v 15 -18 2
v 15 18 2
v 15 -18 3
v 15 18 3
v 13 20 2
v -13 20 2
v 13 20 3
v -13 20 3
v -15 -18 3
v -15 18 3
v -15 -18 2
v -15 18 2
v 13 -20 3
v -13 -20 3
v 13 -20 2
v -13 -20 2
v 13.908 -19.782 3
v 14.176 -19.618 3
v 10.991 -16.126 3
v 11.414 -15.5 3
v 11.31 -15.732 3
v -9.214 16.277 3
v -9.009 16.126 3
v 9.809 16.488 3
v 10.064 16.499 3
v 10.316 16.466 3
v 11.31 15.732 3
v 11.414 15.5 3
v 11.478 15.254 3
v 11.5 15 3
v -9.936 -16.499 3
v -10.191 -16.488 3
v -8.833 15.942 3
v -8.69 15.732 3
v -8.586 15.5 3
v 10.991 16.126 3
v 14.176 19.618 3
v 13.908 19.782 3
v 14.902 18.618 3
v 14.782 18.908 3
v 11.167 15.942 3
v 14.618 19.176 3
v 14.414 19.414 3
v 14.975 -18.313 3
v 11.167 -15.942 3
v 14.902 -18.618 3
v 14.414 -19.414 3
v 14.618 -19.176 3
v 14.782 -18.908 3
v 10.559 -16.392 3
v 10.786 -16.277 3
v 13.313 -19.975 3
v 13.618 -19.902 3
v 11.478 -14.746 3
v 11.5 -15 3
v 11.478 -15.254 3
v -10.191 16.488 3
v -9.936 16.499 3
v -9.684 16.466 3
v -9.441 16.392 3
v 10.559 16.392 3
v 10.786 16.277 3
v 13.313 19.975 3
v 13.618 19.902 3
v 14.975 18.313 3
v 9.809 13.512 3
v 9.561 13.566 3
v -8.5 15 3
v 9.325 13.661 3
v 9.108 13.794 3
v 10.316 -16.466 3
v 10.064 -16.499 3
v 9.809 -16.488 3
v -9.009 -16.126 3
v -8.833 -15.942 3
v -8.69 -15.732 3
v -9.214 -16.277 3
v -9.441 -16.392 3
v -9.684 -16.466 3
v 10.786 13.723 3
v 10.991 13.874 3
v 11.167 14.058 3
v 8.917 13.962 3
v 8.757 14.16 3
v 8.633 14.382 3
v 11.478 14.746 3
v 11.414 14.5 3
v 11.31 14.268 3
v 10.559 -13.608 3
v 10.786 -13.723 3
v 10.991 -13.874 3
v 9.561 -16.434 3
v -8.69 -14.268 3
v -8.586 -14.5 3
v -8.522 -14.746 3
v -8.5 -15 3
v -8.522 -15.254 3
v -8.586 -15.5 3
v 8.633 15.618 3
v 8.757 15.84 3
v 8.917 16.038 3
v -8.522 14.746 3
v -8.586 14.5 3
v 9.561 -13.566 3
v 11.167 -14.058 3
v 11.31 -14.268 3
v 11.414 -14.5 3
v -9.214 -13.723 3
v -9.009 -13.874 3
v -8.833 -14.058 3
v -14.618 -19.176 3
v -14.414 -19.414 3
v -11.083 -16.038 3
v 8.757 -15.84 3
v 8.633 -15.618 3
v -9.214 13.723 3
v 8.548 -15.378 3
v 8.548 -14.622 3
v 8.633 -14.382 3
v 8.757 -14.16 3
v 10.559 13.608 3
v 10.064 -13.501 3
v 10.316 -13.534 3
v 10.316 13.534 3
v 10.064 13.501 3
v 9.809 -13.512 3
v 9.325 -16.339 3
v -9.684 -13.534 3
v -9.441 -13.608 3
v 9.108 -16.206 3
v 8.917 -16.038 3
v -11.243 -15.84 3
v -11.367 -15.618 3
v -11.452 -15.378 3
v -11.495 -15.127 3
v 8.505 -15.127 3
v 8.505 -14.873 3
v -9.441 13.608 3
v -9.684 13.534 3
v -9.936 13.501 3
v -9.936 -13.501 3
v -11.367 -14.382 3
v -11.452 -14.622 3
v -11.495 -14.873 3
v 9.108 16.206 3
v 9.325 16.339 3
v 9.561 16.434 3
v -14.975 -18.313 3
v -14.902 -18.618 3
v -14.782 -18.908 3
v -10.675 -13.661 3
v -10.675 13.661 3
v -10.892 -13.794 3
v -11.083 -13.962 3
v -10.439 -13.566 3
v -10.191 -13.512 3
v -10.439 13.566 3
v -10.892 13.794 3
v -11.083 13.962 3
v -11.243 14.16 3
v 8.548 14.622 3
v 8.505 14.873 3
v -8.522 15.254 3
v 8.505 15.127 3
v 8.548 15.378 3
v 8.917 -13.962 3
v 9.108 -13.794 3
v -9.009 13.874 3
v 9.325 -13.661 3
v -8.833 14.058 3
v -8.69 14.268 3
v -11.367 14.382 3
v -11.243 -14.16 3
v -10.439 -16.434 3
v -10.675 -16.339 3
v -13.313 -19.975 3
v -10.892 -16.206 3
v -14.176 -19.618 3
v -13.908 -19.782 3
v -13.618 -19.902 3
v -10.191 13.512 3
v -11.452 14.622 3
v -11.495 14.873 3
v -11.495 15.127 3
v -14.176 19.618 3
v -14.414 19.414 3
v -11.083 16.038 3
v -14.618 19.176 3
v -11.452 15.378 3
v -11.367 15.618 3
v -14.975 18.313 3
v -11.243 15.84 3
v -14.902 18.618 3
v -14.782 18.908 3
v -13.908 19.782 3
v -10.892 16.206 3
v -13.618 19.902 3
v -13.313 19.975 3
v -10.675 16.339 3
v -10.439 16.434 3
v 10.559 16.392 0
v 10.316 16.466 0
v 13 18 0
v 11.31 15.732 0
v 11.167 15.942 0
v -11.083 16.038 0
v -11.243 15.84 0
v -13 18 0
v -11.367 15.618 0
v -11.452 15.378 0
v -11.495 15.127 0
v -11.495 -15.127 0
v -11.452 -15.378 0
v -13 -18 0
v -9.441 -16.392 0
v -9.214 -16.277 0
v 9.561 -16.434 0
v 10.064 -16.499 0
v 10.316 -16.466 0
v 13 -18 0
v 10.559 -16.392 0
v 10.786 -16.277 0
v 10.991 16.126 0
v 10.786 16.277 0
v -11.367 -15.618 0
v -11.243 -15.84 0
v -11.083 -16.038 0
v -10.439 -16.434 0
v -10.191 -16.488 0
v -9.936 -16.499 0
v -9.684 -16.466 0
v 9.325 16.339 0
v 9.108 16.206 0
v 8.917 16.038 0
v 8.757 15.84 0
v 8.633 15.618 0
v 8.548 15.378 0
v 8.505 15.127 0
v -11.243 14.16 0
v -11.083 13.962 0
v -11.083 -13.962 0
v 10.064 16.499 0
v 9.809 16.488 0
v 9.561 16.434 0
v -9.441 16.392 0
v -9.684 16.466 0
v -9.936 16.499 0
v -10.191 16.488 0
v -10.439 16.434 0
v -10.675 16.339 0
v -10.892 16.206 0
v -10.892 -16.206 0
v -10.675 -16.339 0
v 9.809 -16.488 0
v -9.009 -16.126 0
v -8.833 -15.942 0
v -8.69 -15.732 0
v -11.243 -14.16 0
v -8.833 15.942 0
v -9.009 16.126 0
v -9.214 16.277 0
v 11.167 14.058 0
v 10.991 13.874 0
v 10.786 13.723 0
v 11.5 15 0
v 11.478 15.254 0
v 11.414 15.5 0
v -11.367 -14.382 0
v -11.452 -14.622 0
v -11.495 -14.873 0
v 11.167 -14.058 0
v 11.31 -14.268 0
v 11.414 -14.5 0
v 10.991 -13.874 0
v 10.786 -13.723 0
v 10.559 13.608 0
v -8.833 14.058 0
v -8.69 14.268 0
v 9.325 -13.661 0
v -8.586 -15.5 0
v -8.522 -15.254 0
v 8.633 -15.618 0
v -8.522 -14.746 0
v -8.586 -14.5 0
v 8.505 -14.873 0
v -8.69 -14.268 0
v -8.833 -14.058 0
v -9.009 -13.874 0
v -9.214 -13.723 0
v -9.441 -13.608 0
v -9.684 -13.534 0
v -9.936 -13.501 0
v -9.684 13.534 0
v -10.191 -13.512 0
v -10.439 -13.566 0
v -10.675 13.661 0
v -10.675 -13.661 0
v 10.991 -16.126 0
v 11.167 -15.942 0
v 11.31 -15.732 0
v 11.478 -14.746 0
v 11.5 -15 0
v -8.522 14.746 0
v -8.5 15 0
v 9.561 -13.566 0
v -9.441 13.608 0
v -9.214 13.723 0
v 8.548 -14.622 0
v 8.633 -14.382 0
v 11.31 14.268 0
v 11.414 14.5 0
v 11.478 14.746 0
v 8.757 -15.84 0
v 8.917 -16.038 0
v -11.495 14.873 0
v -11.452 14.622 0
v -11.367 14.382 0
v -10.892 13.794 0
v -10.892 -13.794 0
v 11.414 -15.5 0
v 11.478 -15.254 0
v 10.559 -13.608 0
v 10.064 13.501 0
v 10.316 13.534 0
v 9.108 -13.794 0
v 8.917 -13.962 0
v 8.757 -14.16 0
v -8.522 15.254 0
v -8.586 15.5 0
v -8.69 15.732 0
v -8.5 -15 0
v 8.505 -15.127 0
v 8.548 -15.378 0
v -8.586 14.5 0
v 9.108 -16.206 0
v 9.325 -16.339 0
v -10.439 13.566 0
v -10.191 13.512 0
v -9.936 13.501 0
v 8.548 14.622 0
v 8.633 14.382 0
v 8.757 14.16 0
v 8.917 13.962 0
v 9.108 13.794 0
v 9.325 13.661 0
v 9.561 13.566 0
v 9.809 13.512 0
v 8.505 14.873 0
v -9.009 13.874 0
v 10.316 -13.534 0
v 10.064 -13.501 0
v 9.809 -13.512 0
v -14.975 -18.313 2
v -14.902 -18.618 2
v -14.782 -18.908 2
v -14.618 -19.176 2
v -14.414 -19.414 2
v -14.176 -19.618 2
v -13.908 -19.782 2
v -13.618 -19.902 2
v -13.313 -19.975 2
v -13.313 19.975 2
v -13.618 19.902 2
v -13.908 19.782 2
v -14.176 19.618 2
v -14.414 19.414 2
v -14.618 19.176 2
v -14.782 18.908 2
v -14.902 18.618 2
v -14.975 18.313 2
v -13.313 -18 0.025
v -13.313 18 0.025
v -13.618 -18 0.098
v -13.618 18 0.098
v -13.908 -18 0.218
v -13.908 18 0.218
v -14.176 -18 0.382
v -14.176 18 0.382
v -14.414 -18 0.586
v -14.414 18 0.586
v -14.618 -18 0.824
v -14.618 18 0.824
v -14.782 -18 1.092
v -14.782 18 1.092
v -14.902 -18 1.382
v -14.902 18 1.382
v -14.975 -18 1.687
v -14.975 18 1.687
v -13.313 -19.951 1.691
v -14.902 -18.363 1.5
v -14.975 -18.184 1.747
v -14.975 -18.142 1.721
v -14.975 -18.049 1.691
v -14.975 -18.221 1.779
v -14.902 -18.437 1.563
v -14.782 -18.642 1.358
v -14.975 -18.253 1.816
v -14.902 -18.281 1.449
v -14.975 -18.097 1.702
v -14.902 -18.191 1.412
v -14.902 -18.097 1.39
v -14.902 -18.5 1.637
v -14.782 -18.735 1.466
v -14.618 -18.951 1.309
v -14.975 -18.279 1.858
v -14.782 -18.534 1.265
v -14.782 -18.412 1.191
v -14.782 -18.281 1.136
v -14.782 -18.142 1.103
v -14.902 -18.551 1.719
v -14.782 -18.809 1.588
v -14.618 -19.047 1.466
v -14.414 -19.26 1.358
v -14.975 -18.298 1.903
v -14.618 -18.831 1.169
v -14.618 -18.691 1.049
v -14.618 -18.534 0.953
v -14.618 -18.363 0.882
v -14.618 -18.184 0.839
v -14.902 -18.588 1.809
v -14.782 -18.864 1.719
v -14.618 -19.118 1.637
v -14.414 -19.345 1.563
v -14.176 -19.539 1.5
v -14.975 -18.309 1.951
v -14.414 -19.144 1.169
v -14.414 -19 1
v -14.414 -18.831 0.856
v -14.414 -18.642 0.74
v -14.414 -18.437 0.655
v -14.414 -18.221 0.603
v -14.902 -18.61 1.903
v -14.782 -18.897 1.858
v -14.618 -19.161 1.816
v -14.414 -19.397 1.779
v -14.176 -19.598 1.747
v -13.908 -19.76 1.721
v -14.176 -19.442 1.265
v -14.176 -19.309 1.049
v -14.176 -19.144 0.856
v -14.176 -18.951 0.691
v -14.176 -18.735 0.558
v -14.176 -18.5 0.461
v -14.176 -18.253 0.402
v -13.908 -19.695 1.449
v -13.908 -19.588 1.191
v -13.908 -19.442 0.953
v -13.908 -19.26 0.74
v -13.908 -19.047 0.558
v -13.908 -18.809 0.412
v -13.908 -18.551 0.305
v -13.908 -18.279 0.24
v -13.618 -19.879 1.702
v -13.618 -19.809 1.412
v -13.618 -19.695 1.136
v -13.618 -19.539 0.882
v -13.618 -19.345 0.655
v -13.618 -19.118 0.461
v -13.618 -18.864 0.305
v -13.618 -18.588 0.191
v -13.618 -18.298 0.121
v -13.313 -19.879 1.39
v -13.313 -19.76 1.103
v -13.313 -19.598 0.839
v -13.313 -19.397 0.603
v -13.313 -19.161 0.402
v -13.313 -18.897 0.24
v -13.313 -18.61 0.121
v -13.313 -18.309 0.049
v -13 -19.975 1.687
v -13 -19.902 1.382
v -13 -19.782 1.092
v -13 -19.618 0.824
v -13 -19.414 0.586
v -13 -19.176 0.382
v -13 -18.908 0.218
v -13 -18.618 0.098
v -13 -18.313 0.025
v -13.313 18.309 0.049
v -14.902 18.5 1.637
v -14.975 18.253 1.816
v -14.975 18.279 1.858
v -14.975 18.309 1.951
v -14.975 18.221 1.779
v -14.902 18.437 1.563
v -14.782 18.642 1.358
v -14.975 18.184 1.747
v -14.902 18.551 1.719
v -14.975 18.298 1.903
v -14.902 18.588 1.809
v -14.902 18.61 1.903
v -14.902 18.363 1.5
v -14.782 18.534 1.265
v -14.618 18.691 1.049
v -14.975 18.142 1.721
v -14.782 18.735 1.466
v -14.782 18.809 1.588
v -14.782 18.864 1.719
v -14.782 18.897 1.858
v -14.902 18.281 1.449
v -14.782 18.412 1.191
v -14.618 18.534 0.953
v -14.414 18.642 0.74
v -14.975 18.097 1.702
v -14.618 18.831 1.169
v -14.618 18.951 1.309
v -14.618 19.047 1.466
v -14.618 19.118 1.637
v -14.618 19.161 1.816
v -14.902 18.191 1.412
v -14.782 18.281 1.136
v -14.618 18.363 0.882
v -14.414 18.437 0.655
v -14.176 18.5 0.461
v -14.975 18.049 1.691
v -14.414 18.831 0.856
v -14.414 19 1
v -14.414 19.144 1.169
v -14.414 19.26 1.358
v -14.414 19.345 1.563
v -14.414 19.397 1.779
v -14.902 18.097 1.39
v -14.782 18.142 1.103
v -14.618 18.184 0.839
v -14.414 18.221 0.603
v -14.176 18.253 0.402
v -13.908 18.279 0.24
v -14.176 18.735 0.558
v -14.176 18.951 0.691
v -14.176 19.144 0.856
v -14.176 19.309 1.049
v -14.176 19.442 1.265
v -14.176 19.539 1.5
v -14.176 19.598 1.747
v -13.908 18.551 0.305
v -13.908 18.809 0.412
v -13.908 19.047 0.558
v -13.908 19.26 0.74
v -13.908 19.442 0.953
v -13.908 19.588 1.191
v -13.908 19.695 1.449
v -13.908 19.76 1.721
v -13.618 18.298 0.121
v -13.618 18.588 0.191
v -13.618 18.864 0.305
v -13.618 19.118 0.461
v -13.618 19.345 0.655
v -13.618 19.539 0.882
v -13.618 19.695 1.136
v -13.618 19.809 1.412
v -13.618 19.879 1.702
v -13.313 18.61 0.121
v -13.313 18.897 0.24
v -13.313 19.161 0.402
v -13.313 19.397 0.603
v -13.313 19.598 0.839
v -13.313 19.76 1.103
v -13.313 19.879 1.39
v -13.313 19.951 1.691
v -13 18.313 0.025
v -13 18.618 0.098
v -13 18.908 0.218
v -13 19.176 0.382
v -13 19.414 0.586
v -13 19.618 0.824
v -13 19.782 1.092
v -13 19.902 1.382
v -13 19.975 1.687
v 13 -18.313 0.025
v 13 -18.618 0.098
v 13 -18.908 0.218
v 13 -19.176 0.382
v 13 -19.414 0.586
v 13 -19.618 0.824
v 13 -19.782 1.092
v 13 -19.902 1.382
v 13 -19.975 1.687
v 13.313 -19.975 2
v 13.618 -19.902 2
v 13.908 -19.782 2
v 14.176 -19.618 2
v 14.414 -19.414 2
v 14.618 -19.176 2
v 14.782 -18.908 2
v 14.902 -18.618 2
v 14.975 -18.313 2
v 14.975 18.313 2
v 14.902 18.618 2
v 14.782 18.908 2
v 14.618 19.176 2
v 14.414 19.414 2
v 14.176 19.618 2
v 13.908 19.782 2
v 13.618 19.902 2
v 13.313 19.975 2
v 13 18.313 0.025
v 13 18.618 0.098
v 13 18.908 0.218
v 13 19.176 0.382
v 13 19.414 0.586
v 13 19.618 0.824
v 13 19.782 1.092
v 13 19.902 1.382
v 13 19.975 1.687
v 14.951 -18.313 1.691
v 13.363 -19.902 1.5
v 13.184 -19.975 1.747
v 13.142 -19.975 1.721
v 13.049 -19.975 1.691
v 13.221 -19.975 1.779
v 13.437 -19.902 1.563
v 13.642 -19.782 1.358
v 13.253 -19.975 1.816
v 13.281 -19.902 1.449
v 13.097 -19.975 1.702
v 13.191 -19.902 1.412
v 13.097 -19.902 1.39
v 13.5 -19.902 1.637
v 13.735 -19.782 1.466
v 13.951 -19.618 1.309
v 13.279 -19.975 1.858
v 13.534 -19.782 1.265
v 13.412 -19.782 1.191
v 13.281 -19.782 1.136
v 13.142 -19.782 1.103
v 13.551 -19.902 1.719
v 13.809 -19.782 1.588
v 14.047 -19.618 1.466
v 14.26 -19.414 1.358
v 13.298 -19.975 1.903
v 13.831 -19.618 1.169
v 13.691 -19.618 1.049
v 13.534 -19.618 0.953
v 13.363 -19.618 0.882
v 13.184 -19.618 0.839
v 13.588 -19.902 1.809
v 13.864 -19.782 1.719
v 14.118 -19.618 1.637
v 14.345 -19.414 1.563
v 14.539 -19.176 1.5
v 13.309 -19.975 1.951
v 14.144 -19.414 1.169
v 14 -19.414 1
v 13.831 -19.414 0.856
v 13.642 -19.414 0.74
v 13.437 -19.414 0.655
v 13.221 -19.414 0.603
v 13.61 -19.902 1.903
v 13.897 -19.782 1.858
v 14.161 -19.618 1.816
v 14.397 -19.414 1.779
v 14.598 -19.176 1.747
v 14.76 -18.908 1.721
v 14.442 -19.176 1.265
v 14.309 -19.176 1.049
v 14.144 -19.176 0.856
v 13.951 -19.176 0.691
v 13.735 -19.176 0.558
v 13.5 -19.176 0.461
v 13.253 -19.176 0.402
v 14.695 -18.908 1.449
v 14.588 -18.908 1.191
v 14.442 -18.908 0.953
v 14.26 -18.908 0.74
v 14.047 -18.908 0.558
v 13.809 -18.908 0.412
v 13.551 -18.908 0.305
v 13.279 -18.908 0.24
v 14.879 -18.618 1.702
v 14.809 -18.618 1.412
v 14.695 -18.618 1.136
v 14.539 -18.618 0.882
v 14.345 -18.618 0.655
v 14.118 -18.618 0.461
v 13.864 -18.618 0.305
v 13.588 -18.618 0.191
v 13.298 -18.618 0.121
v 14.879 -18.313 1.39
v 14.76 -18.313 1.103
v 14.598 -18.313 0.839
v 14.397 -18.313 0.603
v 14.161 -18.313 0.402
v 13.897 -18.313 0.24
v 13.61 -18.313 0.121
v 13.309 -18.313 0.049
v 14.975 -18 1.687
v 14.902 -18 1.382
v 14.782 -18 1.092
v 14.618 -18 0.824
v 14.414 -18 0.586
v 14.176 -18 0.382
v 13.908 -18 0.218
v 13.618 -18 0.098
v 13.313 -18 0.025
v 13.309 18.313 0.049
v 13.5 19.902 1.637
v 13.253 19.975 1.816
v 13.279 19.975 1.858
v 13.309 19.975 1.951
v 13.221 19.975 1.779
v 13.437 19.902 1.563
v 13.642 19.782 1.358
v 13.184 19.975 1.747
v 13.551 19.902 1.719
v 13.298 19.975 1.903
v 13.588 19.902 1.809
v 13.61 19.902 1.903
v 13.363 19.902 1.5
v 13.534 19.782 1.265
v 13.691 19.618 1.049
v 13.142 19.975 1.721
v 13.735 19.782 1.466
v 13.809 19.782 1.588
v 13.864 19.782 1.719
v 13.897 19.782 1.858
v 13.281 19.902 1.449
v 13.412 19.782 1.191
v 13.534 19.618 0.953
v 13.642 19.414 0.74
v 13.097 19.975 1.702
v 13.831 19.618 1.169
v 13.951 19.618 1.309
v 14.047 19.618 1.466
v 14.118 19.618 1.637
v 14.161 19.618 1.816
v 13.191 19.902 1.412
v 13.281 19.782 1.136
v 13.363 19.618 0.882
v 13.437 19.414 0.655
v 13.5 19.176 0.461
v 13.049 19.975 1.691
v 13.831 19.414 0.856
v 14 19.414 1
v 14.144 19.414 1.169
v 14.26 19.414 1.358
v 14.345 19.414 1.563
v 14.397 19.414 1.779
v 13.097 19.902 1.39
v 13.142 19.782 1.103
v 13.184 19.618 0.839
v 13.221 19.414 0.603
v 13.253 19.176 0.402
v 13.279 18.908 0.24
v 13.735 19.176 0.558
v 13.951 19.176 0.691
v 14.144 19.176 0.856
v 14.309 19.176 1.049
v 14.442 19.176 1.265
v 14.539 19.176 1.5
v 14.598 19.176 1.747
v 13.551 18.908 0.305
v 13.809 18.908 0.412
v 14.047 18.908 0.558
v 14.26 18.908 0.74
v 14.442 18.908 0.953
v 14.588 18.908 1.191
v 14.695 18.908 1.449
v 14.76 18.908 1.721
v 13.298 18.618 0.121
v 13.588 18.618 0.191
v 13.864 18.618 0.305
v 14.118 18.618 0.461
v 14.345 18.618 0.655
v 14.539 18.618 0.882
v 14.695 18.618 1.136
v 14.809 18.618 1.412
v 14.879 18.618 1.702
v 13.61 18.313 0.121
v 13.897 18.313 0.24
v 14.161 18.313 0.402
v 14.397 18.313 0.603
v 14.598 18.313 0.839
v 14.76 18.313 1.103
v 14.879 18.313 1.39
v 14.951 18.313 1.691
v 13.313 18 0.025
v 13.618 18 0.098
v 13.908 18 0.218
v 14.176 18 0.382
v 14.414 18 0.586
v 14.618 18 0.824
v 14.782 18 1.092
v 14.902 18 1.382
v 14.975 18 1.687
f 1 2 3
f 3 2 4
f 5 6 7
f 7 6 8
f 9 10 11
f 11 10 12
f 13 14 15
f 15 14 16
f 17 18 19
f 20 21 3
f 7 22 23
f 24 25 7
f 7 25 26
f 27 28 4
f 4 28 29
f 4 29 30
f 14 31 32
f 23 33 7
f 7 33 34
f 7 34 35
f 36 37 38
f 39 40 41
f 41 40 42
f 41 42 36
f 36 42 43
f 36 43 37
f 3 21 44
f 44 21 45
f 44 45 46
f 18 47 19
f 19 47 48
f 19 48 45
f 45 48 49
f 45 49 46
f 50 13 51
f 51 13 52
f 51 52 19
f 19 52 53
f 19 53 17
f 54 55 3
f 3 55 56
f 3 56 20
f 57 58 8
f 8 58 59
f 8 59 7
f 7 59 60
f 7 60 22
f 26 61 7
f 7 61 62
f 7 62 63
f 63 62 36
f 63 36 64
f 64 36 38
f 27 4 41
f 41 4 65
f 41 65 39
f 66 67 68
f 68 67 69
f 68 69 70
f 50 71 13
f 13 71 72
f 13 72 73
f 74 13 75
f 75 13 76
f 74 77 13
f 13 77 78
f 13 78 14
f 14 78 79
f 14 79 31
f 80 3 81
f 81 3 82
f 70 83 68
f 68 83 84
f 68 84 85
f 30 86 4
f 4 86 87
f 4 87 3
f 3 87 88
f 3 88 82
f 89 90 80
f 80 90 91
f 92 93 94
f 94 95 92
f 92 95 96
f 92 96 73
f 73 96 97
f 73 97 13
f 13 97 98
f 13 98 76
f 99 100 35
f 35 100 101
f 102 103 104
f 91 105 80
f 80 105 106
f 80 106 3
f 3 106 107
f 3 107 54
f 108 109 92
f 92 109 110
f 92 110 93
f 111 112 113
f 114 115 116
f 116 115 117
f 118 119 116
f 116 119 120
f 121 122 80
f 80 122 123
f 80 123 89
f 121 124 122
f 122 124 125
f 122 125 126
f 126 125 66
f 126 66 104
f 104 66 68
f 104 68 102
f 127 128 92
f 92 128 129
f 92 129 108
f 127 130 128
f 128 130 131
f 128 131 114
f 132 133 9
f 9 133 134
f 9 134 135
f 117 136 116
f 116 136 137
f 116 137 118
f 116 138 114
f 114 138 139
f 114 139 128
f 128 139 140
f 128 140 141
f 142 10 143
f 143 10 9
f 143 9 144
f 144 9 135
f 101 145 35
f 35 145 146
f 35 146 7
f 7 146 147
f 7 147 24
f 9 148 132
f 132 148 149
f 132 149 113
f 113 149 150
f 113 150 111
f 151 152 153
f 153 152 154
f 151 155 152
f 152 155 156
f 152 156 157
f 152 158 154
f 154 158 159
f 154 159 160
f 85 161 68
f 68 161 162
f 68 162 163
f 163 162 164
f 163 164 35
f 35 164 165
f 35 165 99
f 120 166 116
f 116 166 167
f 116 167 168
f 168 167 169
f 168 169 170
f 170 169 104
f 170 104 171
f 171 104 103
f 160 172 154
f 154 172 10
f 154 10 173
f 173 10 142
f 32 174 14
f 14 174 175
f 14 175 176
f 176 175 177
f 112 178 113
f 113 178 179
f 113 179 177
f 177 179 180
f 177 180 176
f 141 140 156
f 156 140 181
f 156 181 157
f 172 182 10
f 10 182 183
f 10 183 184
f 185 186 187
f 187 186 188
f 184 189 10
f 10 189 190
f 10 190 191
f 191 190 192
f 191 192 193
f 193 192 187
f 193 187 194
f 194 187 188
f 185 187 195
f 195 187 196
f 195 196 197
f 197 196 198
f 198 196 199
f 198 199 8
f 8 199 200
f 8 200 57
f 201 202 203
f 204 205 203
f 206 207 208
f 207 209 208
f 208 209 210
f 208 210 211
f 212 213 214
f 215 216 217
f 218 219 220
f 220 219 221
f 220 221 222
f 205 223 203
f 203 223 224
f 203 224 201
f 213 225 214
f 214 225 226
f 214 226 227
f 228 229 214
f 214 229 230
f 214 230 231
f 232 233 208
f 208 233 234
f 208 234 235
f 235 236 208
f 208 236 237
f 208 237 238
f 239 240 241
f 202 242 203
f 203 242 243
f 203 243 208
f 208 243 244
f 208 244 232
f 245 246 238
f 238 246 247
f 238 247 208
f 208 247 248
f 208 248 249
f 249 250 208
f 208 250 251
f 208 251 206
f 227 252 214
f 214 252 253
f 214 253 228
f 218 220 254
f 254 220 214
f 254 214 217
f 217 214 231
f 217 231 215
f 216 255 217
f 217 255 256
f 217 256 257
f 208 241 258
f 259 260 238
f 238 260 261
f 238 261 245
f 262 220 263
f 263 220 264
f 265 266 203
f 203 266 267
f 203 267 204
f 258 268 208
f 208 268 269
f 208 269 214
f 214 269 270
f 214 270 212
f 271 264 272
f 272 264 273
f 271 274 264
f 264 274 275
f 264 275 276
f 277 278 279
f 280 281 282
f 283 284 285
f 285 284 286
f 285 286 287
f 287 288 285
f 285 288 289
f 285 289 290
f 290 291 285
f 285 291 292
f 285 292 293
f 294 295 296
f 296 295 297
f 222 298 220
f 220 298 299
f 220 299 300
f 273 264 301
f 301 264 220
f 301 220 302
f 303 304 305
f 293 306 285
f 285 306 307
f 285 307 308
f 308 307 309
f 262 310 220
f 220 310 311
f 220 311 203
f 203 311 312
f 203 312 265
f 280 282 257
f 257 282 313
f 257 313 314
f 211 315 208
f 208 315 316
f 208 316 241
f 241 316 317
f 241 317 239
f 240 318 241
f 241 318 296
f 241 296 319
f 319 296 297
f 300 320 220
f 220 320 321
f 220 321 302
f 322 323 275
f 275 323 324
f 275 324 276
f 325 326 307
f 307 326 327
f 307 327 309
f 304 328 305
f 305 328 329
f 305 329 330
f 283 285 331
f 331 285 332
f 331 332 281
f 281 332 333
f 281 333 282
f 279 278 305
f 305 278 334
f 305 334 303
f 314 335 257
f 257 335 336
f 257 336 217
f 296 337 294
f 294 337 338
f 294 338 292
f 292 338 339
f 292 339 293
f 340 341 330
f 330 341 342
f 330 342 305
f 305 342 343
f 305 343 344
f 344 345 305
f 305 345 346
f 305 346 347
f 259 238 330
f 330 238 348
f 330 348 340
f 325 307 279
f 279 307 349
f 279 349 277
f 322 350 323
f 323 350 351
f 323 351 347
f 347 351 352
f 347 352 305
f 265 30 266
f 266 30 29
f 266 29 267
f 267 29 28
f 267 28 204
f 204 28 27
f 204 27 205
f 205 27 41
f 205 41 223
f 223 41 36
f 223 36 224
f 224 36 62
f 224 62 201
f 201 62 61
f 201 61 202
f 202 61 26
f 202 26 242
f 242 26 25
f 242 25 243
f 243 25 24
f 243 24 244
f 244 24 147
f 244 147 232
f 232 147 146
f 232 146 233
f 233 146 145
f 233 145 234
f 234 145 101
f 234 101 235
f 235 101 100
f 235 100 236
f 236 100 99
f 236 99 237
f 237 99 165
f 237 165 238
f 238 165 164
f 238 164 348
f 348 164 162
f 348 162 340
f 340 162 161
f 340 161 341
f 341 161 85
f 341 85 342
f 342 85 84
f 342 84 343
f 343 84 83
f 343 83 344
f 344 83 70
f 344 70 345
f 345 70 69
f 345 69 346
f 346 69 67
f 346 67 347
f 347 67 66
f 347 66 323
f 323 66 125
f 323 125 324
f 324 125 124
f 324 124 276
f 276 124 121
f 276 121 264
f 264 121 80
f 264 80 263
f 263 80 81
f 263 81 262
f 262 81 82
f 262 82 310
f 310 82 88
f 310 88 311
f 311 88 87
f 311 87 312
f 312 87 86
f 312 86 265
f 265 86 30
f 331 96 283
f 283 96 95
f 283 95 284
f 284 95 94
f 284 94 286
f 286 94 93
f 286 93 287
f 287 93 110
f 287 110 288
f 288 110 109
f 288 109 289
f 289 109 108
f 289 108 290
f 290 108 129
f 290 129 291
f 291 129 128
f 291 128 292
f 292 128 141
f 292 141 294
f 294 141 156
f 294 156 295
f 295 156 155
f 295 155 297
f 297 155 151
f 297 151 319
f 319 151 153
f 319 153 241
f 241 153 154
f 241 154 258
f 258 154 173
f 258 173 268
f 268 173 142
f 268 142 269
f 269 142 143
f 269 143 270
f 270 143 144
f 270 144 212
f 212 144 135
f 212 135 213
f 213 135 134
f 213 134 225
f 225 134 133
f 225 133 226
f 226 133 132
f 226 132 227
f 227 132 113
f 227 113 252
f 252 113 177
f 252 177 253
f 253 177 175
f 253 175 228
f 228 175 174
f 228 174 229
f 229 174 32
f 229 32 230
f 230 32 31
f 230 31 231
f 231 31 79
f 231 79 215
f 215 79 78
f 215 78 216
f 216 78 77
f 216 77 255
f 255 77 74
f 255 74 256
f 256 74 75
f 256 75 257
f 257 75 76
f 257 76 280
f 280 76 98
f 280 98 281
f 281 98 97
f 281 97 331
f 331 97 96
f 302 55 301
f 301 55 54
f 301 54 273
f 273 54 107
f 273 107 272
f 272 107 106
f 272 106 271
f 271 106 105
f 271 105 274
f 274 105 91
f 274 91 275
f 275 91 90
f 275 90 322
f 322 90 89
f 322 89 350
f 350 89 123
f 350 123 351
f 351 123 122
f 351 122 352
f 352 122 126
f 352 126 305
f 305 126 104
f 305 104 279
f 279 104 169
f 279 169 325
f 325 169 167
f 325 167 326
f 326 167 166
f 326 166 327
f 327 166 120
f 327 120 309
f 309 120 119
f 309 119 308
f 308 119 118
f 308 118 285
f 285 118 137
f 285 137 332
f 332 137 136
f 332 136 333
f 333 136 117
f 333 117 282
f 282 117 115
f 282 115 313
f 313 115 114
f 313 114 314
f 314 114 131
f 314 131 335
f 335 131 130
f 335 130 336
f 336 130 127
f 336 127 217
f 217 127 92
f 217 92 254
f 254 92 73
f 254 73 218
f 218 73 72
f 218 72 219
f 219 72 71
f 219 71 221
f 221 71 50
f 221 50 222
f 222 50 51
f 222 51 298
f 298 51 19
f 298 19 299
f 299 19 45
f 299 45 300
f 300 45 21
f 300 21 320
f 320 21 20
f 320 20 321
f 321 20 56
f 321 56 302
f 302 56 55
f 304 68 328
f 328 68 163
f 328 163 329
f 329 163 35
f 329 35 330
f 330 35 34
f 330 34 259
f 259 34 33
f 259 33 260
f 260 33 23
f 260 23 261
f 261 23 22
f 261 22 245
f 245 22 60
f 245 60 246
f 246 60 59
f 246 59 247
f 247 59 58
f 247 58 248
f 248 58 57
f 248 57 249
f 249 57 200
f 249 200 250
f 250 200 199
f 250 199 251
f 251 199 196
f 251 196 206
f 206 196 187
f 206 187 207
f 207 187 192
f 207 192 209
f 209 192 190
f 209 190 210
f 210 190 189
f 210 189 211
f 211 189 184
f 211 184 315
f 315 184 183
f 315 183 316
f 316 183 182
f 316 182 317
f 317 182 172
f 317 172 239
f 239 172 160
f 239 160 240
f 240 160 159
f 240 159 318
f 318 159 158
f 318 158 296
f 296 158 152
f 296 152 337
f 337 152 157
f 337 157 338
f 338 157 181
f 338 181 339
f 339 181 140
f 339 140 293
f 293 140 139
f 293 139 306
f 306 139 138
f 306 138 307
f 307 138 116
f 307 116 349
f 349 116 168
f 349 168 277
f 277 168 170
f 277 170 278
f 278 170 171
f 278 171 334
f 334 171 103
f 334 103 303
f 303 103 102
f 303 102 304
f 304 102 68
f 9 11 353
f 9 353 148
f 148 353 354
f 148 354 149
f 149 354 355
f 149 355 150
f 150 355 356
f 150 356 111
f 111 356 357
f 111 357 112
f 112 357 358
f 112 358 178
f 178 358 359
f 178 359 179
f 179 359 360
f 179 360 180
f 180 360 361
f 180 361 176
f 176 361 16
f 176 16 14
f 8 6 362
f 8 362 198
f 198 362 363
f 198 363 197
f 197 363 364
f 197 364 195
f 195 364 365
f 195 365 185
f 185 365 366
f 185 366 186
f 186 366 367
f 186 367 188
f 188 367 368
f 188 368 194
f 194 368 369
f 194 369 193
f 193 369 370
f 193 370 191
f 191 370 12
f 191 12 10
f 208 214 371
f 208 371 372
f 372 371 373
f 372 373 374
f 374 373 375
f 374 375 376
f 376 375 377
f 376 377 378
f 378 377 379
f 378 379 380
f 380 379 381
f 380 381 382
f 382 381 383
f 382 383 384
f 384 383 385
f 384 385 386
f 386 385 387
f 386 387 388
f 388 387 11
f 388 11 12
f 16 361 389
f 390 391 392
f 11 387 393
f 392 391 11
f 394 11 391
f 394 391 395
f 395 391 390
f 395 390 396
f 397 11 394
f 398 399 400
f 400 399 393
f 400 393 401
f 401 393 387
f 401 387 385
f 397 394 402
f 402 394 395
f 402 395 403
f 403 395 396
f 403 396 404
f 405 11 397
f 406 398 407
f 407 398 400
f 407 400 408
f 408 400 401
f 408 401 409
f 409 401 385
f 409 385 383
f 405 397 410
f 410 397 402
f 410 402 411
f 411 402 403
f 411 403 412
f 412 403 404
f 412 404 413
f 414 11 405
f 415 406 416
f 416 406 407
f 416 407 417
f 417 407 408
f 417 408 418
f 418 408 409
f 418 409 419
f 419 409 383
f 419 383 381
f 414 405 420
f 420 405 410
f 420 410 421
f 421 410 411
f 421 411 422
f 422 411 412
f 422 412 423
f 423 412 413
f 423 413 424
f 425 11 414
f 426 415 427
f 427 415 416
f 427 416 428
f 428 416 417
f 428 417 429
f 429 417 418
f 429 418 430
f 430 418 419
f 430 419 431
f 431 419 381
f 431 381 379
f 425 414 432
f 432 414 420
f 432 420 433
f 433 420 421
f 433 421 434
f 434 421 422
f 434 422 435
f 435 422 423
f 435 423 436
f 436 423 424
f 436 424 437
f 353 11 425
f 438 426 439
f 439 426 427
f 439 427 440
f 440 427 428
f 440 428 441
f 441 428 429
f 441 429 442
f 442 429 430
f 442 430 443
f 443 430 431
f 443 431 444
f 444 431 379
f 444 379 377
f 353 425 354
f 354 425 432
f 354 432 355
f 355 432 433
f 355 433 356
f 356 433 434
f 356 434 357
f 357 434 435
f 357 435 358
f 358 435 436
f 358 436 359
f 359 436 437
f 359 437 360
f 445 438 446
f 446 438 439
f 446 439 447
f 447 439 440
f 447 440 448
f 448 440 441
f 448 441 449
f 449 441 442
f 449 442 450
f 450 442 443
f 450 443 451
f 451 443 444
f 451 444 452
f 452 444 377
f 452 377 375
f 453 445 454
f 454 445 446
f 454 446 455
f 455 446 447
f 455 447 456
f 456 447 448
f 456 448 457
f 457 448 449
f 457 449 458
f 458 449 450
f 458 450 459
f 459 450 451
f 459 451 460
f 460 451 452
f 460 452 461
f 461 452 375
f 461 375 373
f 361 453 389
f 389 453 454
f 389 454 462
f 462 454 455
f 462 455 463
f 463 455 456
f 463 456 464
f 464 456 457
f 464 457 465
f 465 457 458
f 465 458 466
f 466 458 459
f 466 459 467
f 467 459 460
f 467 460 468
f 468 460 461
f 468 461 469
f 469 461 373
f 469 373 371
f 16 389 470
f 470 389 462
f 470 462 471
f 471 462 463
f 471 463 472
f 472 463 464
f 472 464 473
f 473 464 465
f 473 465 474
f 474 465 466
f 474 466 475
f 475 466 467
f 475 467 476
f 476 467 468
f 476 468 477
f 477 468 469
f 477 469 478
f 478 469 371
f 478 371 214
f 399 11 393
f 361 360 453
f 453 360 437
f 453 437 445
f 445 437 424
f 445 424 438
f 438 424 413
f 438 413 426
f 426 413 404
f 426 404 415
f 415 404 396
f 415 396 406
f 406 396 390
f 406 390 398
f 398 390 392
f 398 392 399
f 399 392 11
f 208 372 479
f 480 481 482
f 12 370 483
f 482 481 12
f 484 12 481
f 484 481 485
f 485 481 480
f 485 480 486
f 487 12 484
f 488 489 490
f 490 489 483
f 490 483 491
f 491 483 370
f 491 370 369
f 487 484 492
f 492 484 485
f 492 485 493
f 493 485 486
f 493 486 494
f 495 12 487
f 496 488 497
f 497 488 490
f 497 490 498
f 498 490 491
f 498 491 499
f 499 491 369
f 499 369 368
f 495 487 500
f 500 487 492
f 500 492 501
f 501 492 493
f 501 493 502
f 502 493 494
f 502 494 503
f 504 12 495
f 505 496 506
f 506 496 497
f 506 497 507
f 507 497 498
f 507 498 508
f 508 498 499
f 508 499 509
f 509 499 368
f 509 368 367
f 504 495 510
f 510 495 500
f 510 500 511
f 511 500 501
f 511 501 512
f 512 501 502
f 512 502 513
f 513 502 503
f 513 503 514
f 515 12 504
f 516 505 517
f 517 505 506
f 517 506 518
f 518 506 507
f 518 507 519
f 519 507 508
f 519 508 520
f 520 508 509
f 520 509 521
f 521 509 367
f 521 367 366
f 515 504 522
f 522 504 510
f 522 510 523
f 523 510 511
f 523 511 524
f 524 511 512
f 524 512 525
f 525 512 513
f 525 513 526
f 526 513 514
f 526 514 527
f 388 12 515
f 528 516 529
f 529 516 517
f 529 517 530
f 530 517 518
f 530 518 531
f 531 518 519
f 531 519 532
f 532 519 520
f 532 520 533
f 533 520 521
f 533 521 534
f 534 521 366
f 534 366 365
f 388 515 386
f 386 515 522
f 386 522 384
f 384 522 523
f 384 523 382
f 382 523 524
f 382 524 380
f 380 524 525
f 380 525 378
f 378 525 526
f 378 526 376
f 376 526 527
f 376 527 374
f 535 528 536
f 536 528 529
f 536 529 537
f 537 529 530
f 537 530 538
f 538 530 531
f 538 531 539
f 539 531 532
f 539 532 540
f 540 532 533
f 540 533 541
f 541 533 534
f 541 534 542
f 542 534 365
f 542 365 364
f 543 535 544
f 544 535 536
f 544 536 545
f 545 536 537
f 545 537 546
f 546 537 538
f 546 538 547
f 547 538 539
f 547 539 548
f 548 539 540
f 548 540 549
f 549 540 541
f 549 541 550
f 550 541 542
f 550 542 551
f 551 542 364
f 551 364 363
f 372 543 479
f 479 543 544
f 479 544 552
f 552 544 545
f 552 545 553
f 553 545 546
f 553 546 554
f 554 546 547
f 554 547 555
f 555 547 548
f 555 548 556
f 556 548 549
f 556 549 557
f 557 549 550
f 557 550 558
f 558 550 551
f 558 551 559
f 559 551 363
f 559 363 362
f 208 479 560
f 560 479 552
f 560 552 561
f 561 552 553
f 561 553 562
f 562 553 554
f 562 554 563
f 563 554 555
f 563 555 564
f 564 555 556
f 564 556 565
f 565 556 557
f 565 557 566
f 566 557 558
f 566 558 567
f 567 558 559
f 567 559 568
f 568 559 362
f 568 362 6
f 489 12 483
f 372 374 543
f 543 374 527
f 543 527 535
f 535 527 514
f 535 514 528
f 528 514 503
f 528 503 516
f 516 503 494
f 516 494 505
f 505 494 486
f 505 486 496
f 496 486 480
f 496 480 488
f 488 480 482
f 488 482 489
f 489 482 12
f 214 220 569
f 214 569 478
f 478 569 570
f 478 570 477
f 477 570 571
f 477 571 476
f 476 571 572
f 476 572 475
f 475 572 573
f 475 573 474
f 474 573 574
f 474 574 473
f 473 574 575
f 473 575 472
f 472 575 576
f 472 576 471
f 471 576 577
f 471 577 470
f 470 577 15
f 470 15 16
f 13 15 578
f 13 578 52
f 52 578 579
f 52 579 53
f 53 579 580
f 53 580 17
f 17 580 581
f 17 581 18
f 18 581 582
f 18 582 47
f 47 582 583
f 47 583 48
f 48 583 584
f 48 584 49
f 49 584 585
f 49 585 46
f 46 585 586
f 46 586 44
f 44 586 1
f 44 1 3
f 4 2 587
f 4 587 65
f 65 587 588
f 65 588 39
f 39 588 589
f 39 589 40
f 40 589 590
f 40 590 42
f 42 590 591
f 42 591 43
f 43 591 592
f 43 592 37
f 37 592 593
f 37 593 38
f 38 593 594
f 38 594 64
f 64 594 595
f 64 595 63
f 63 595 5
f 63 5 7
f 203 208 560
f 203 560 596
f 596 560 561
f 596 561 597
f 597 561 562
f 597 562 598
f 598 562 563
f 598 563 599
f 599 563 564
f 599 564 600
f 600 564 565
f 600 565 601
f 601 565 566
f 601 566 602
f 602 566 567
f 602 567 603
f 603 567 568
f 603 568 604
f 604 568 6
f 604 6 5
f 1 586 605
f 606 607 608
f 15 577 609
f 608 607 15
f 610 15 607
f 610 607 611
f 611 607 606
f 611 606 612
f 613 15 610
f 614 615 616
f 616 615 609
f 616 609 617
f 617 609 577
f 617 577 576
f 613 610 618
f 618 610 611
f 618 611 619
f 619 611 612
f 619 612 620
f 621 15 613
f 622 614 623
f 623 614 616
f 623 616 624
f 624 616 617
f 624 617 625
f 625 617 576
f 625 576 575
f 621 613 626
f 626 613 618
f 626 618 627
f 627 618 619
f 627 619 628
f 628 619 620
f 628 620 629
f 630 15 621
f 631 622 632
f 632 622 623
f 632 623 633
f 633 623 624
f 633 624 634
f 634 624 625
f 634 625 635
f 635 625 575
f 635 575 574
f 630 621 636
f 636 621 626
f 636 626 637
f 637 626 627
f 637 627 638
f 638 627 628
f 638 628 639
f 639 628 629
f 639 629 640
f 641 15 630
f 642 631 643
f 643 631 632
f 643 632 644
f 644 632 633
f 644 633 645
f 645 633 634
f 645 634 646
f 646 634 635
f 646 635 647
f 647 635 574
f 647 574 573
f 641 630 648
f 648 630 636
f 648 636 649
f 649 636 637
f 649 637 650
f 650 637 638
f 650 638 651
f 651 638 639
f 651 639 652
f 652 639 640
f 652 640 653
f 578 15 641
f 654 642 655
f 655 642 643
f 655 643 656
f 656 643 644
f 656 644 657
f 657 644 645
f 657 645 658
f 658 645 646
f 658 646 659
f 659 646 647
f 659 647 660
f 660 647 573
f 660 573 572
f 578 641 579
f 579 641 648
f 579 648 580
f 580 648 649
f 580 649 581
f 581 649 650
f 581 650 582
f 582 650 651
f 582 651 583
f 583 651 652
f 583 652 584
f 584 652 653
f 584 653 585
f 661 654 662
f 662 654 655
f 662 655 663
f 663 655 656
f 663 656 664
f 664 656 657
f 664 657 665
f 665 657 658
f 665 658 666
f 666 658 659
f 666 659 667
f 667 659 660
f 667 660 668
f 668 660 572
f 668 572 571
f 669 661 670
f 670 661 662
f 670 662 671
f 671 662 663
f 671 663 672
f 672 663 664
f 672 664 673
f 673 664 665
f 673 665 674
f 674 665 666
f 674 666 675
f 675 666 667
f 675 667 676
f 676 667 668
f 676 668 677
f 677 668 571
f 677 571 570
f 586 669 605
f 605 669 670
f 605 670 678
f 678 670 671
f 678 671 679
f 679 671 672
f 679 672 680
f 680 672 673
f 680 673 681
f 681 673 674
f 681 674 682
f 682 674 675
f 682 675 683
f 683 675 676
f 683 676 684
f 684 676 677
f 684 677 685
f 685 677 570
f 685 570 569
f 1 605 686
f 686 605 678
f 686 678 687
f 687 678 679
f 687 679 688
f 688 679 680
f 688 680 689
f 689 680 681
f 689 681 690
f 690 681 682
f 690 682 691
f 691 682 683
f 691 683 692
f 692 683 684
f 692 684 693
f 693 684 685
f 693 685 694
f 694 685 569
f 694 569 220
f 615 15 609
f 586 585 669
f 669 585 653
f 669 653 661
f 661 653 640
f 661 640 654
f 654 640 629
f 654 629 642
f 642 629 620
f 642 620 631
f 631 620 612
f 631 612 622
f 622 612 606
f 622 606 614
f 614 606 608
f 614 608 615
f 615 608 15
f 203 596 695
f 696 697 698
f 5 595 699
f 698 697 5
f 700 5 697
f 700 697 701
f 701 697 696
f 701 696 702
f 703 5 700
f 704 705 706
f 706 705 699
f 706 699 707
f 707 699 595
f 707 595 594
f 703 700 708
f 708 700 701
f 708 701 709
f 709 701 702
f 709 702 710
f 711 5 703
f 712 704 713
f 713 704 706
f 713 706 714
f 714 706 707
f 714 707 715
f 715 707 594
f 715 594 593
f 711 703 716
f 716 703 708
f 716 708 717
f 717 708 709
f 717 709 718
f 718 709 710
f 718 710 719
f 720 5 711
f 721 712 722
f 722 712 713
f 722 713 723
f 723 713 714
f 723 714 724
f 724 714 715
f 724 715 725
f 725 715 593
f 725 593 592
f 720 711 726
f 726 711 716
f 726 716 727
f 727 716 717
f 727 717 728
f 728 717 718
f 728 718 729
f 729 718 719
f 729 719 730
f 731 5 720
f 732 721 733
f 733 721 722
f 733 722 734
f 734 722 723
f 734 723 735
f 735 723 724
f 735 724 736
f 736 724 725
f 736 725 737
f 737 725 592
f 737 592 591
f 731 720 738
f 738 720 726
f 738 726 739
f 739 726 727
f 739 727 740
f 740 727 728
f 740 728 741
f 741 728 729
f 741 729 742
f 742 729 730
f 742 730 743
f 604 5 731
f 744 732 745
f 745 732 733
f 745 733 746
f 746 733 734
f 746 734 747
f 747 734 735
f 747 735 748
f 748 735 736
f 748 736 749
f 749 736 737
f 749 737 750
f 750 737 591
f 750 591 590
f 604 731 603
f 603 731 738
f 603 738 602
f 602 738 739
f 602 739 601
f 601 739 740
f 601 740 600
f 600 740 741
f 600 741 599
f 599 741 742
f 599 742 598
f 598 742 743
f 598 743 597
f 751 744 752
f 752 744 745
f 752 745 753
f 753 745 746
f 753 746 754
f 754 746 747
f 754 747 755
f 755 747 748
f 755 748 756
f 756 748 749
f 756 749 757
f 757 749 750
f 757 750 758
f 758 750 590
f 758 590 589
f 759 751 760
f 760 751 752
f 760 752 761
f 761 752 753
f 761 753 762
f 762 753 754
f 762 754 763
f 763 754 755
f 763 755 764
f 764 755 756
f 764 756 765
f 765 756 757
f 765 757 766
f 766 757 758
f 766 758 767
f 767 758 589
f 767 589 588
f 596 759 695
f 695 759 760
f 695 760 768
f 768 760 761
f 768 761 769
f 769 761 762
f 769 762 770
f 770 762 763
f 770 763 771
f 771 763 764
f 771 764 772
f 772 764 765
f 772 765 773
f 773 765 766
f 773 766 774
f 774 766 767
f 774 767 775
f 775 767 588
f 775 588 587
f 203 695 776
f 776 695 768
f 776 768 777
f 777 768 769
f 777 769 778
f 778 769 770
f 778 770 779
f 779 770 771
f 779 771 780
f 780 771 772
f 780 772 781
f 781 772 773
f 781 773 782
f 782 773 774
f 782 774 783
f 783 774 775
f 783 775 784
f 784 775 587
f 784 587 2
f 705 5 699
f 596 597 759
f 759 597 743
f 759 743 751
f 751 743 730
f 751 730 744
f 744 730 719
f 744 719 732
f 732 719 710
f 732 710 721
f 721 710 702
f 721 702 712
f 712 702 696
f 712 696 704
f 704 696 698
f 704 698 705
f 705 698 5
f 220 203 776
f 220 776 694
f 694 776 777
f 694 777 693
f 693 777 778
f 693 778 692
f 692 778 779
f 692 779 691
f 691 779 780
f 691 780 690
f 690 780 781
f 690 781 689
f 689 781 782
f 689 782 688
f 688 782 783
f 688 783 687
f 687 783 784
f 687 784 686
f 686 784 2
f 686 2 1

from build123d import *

# Parameters (mm, degrees)
SKETCH_1_W          = 30
SKETCH_1_H          = 40
EXTRUDE_1_DEPTH     = 3
SKETCH_2_R          = 1.5
CUT_EXTRUDE_1_DEPTH = 10
FILLET_1_R          = 2


with BuildPart() as part:
    # 草图1 → 凸台-拉伸1 (new body)
    with BuildSketch(Plane.XY):
        Rectangle(SKETCH_1_W, SKETCH_1_H)
    extrude(amount=EXTRUDE_1_DEPTH)

    # 草图2 → 切除-拉伸1 (cut)
    with BuildSketch(Plane.XY.offset(3)):
        with Locations((10, 15)):
            Circle(SKETCH_2_R)
        with Locations((-10, 15)):
            Circle(SKETCH_2_R)
        with Locations((10, -15)):
            Circle(SKETCH_2_R)
        with Locations((-10, -15)):
            Circle(SKETCH_2_R)
    extrude(amount=-CUT_EXTRUDE_1_DEPTH, mode=Mode.SUBTRACT)

    # 圆角1
    fillet_1_edges = [part.edges().sort_by_distance(p)[0] for p in [
        (0, -20, 0),
        (-15, 0, 0),
        (0, 20, 0),
        (15, 0, 0),
        (15, -20, 1.5),
        (-15, -20, 1.5),
        (-15, 20, 1.5),
        (15, 20, 1.5),
    ]]
    fillet(fillet_1_edges, radius=FILLET_1_R)


solid = part.part
